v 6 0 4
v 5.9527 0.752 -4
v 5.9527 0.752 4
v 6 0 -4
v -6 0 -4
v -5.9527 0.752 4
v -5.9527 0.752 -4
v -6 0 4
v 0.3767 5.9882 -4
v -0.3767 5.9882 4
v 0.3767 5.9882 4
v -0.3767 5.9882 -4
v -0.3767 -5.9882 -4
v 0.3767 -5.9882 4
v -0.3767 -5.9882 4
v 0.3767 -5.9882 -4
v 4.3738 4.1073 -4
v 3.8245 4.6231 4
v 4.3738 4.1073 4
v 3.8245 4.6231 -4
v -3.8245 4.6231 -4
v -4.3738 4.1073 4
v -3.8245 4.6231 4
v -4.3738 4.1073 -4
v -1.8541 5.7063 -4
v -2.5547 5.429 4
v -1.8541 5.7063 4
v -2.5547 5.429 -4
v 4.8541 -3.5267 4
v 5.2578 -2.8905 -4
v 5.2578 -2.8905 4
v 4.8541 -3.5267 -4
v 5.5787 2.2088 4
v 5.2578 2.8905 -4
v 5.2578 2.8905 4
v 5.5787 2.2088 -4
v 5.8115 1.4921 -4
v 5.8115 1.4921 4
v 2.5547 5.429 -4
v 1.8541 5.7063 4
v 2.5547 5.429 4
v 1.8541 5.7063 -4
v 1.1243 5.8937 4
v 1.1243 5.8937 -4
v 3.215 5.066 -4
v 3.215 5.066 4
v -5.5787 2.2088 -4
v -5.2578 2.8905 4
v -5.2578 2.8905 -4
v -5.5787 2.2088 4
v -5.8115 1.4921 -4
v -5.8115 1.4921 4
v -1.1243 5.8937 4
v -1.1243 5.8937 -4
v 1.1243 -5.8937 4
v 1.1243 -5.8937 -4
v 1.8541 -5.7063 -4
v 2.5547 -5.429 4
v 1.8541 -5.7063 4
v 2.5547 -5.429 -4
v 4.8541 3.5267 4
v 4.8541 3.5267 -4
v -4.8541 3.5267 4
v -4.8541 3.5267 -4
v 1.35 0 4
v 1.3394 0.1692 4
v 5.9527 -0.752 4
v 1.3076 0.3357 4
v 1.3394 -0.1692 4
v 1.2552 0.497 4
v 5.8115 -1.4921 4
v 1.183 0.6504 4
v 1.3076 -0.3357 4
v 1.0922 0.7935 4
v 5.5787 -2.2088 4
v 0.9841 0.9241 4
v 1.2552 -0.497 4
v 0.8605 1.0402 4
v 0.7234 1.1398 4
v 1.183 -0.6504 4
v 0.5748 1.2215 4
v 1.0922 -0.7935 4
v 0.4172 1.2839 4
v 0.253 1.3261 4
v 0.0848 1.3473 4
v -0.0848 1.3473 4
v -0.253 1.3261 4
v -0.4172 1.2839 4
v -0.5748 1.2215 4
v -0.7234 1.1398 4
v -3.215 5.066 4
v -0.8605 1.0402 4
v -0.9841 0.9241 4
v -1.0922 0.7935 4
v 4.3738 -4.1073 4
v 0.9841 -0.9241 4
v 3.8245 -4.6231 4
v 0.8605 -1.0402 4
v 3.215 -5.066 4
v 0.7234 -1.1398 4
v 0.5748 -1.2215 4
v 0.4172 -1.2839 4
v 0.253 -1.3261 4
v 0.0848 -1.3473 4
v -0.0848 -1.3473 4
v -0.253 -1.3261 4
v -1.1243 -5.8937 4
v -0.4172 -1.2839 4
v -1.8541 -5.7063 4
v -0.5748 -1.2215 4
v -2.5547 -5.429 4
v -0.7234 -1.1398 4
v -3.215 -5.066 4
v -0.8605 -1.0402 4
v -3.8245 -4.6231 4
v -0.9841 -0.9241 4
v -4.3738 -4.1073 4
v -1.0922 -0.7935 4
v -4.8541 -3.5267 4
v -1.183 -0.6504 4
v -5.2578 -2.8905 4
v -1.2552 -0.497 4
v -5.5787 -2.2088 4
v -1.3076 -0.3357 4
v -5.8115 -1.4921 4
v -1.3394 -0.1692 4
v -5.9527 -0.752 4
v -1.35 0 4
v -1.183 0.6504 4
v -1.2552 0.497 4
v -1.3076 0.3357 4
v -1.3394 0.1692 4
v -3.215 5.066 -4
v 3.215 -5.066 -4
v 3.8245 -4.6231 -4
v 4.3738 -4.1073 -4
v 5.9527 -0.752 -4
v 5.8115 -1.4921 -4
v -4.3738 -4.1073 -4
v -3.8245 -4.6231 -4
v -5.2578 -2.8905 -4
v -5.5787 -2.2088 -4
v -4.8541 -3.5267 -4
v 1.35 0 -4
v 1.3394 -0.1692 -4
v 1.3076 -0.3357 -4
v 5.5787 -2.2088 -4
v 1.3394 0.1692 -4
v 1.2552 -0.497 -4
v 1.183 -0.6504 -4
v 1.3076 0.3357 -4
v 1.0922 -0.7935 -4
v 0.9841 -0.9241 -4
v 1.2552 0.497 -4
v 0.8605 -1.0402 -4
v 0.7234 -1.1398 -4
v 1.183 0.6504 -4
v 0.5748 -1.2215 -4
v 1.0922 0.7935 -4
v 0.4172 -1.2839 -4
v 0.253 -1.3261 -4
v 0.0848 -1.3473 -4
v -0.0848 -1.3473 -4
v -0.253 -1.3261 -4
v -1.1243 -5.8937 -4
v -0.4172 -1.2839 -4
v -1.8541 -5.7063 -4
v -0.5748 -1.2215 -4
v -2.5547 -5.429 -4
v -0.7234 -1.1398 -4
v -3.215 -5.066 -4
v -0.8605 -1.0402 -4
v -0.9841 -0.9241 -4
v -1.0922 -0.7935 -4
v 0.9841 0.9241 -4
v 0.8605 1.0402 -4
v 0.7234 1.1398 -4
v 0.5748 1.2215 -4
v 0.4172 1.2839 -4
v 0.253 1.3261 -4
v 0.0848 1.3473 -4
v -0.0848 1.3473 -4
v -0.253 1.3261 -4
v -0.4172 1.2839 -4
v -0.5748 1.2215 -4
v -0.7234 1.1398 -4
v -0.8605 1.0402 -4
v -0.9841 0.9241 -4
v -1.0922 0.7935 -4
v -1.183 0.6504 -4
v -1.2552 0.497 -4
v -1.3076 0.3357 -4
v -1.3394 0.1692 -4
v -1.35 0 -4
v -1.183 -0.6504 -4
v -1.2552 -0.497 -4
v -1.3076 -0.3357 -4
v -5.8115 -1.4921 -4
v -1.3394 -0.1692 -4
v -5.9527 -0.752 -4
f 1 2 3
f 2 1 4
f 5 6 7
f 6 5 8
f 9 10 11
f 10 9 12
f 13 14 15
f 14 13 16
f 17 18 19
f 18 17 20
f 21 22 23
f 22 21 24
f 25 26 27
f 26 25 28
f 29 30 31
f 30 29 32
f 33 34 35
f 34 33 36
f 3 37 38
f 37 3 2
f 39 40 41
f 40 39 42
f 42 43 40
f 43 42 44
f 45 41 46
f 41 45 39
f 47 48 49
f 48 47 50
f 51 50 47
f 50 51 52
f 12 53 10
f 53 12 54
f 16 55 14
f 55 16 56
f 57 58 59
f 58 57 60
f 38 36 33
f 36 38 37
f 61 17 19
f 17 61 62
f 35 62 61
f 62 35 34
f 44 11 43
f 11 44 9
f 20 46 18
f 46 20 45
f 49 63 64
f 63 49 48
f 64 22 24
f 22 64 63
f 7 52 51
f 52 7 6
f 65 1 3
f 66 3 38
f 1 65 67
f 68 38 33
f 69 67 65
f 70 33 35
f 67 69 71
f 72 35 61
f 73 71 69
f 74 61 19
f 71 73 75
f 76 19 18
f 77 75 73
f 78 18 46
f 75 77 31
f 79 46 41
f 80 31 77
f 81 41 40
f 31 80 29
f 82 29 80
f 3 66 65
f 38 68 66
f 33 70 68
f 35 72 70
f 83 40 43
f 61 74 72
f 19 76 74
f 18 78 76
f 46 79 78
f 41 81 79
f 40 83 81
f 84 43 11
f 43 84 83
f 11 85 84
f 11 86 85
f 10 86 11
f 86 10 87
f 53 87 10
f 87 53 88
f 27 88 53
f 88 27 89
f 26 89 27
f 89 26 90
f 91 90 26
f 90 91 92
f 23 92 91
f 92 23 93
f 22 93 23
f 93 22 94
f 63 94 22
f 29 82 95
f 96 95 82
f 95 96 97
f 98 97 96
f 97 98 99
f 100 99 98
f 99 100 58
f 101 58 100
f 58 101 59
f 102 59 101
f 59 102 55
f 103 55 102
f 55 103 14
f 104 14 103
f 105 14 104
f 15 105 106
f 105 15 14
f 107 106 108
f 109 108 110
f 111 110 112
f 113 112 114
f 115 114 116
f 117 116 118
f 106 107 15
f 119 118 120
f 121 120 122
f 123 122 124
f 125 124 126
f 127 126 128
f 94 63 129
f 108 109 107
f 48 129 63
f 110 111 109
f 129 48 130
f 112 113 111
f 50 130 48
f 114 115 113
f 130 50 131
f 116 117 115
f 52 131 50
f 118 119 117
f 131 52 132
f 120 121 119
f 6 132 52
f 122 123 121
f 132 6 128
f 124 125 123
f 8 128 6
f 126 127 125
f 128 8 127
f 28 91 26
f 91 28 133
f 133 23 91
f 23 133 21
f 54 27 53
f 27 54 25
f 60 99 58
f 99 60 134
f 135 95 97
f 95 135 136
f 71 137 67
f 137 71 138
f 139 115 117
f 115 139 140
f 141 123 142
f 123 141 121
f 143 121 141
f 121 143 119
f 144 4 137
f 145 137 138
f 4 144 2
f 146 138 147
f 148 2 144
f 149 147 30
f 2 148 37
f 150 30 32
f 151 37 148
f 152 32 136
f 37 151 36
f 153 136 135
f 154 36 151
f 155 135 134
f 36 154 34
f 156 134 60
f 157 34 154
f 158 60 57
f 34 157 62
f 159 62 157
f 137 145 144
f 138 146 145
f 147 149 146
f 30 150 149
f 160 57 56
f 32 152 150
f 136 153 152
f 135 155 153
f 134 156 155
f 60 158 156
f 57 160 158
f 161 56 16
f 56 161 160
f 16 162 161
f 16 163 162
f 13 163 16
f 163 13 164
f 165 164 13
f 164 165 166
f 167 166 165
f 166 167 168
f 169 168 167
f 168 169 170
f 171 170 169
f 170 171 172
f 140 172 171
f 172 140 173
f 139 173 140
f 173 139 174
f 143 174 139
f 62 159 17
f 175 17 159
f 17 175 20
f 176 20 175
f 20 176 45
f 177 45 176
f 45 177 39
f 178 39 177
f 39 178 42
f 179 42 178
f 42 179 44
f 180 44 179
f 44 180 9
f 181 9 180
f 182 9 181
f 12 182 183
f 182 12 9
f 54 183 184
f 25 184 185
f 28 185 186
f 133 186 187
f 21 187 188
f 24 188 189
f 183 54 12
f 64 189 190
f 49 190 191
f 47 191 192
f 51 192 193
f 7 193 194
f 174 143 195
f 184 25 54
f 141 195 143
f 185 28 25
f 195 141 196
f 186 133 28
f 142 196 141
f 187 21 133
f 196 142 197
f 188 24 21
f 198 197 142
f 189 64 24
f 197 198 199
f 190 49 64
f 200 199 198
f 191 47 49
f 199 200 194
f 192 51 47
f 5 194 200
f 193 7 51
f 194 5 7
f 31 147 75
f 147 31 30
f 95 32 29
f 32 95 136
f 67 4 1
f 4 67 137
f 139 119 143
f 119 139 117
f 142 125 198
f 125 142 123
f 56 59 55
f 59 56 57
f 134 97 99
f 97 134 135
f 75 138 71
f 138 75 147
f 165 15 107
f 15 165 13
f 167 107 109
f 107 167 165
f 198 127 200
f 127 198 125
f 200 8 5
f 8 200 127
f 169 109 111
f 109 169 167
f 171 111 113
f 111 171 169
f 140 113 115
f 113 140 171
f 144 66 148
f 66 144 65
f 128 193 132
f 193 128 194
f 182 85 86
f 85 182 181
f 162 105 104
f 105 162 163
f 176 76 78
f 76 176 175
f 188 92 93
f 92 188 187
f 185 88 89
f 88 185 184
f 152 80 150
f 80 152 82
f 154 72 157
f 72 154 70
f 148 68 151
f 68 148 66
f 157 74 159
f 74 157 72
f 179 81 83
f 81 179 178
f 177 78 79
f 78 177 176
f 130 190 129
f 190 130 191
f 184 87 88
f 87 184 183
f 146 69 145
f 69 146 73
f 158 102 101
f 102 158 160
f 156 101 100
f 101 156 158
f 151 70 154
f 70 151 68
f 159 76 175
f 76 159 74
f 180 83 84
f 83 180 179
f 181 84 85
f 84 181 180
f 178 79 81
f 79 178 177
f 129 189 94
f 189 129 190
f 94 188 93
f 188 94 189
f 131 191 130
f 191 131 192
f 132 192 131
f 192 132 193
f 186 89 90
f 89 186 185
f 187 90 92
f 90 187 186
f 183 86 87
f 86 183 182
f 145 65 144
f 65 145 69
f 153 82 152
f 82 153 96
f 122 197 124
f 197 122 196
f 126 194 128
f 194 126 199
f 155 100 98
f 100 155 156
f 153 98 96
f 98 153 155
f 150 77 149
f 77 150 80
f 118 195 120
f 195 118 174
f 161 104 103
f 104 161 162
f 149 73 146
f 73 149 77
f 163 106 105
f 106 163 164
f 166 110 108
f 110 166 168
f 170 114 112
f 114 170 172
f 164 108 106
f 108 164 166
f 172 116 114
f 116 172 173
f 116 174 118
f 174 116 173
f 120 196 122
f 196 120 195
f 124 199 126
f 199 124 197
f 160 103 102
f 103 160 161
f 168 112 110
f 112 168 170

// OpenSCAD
$fn = 50;


difference() {
	union() {
		translate(v = [0, 0, -4.0000000000]) {
			cylinder(h = 8, r = 6.0000000000);
		}
	}
	union() {
		translate(v = [0, 0, -100.0000000000]) {
			cylinder(h = 200, r = 1.3500000000);
		}
	}
}
